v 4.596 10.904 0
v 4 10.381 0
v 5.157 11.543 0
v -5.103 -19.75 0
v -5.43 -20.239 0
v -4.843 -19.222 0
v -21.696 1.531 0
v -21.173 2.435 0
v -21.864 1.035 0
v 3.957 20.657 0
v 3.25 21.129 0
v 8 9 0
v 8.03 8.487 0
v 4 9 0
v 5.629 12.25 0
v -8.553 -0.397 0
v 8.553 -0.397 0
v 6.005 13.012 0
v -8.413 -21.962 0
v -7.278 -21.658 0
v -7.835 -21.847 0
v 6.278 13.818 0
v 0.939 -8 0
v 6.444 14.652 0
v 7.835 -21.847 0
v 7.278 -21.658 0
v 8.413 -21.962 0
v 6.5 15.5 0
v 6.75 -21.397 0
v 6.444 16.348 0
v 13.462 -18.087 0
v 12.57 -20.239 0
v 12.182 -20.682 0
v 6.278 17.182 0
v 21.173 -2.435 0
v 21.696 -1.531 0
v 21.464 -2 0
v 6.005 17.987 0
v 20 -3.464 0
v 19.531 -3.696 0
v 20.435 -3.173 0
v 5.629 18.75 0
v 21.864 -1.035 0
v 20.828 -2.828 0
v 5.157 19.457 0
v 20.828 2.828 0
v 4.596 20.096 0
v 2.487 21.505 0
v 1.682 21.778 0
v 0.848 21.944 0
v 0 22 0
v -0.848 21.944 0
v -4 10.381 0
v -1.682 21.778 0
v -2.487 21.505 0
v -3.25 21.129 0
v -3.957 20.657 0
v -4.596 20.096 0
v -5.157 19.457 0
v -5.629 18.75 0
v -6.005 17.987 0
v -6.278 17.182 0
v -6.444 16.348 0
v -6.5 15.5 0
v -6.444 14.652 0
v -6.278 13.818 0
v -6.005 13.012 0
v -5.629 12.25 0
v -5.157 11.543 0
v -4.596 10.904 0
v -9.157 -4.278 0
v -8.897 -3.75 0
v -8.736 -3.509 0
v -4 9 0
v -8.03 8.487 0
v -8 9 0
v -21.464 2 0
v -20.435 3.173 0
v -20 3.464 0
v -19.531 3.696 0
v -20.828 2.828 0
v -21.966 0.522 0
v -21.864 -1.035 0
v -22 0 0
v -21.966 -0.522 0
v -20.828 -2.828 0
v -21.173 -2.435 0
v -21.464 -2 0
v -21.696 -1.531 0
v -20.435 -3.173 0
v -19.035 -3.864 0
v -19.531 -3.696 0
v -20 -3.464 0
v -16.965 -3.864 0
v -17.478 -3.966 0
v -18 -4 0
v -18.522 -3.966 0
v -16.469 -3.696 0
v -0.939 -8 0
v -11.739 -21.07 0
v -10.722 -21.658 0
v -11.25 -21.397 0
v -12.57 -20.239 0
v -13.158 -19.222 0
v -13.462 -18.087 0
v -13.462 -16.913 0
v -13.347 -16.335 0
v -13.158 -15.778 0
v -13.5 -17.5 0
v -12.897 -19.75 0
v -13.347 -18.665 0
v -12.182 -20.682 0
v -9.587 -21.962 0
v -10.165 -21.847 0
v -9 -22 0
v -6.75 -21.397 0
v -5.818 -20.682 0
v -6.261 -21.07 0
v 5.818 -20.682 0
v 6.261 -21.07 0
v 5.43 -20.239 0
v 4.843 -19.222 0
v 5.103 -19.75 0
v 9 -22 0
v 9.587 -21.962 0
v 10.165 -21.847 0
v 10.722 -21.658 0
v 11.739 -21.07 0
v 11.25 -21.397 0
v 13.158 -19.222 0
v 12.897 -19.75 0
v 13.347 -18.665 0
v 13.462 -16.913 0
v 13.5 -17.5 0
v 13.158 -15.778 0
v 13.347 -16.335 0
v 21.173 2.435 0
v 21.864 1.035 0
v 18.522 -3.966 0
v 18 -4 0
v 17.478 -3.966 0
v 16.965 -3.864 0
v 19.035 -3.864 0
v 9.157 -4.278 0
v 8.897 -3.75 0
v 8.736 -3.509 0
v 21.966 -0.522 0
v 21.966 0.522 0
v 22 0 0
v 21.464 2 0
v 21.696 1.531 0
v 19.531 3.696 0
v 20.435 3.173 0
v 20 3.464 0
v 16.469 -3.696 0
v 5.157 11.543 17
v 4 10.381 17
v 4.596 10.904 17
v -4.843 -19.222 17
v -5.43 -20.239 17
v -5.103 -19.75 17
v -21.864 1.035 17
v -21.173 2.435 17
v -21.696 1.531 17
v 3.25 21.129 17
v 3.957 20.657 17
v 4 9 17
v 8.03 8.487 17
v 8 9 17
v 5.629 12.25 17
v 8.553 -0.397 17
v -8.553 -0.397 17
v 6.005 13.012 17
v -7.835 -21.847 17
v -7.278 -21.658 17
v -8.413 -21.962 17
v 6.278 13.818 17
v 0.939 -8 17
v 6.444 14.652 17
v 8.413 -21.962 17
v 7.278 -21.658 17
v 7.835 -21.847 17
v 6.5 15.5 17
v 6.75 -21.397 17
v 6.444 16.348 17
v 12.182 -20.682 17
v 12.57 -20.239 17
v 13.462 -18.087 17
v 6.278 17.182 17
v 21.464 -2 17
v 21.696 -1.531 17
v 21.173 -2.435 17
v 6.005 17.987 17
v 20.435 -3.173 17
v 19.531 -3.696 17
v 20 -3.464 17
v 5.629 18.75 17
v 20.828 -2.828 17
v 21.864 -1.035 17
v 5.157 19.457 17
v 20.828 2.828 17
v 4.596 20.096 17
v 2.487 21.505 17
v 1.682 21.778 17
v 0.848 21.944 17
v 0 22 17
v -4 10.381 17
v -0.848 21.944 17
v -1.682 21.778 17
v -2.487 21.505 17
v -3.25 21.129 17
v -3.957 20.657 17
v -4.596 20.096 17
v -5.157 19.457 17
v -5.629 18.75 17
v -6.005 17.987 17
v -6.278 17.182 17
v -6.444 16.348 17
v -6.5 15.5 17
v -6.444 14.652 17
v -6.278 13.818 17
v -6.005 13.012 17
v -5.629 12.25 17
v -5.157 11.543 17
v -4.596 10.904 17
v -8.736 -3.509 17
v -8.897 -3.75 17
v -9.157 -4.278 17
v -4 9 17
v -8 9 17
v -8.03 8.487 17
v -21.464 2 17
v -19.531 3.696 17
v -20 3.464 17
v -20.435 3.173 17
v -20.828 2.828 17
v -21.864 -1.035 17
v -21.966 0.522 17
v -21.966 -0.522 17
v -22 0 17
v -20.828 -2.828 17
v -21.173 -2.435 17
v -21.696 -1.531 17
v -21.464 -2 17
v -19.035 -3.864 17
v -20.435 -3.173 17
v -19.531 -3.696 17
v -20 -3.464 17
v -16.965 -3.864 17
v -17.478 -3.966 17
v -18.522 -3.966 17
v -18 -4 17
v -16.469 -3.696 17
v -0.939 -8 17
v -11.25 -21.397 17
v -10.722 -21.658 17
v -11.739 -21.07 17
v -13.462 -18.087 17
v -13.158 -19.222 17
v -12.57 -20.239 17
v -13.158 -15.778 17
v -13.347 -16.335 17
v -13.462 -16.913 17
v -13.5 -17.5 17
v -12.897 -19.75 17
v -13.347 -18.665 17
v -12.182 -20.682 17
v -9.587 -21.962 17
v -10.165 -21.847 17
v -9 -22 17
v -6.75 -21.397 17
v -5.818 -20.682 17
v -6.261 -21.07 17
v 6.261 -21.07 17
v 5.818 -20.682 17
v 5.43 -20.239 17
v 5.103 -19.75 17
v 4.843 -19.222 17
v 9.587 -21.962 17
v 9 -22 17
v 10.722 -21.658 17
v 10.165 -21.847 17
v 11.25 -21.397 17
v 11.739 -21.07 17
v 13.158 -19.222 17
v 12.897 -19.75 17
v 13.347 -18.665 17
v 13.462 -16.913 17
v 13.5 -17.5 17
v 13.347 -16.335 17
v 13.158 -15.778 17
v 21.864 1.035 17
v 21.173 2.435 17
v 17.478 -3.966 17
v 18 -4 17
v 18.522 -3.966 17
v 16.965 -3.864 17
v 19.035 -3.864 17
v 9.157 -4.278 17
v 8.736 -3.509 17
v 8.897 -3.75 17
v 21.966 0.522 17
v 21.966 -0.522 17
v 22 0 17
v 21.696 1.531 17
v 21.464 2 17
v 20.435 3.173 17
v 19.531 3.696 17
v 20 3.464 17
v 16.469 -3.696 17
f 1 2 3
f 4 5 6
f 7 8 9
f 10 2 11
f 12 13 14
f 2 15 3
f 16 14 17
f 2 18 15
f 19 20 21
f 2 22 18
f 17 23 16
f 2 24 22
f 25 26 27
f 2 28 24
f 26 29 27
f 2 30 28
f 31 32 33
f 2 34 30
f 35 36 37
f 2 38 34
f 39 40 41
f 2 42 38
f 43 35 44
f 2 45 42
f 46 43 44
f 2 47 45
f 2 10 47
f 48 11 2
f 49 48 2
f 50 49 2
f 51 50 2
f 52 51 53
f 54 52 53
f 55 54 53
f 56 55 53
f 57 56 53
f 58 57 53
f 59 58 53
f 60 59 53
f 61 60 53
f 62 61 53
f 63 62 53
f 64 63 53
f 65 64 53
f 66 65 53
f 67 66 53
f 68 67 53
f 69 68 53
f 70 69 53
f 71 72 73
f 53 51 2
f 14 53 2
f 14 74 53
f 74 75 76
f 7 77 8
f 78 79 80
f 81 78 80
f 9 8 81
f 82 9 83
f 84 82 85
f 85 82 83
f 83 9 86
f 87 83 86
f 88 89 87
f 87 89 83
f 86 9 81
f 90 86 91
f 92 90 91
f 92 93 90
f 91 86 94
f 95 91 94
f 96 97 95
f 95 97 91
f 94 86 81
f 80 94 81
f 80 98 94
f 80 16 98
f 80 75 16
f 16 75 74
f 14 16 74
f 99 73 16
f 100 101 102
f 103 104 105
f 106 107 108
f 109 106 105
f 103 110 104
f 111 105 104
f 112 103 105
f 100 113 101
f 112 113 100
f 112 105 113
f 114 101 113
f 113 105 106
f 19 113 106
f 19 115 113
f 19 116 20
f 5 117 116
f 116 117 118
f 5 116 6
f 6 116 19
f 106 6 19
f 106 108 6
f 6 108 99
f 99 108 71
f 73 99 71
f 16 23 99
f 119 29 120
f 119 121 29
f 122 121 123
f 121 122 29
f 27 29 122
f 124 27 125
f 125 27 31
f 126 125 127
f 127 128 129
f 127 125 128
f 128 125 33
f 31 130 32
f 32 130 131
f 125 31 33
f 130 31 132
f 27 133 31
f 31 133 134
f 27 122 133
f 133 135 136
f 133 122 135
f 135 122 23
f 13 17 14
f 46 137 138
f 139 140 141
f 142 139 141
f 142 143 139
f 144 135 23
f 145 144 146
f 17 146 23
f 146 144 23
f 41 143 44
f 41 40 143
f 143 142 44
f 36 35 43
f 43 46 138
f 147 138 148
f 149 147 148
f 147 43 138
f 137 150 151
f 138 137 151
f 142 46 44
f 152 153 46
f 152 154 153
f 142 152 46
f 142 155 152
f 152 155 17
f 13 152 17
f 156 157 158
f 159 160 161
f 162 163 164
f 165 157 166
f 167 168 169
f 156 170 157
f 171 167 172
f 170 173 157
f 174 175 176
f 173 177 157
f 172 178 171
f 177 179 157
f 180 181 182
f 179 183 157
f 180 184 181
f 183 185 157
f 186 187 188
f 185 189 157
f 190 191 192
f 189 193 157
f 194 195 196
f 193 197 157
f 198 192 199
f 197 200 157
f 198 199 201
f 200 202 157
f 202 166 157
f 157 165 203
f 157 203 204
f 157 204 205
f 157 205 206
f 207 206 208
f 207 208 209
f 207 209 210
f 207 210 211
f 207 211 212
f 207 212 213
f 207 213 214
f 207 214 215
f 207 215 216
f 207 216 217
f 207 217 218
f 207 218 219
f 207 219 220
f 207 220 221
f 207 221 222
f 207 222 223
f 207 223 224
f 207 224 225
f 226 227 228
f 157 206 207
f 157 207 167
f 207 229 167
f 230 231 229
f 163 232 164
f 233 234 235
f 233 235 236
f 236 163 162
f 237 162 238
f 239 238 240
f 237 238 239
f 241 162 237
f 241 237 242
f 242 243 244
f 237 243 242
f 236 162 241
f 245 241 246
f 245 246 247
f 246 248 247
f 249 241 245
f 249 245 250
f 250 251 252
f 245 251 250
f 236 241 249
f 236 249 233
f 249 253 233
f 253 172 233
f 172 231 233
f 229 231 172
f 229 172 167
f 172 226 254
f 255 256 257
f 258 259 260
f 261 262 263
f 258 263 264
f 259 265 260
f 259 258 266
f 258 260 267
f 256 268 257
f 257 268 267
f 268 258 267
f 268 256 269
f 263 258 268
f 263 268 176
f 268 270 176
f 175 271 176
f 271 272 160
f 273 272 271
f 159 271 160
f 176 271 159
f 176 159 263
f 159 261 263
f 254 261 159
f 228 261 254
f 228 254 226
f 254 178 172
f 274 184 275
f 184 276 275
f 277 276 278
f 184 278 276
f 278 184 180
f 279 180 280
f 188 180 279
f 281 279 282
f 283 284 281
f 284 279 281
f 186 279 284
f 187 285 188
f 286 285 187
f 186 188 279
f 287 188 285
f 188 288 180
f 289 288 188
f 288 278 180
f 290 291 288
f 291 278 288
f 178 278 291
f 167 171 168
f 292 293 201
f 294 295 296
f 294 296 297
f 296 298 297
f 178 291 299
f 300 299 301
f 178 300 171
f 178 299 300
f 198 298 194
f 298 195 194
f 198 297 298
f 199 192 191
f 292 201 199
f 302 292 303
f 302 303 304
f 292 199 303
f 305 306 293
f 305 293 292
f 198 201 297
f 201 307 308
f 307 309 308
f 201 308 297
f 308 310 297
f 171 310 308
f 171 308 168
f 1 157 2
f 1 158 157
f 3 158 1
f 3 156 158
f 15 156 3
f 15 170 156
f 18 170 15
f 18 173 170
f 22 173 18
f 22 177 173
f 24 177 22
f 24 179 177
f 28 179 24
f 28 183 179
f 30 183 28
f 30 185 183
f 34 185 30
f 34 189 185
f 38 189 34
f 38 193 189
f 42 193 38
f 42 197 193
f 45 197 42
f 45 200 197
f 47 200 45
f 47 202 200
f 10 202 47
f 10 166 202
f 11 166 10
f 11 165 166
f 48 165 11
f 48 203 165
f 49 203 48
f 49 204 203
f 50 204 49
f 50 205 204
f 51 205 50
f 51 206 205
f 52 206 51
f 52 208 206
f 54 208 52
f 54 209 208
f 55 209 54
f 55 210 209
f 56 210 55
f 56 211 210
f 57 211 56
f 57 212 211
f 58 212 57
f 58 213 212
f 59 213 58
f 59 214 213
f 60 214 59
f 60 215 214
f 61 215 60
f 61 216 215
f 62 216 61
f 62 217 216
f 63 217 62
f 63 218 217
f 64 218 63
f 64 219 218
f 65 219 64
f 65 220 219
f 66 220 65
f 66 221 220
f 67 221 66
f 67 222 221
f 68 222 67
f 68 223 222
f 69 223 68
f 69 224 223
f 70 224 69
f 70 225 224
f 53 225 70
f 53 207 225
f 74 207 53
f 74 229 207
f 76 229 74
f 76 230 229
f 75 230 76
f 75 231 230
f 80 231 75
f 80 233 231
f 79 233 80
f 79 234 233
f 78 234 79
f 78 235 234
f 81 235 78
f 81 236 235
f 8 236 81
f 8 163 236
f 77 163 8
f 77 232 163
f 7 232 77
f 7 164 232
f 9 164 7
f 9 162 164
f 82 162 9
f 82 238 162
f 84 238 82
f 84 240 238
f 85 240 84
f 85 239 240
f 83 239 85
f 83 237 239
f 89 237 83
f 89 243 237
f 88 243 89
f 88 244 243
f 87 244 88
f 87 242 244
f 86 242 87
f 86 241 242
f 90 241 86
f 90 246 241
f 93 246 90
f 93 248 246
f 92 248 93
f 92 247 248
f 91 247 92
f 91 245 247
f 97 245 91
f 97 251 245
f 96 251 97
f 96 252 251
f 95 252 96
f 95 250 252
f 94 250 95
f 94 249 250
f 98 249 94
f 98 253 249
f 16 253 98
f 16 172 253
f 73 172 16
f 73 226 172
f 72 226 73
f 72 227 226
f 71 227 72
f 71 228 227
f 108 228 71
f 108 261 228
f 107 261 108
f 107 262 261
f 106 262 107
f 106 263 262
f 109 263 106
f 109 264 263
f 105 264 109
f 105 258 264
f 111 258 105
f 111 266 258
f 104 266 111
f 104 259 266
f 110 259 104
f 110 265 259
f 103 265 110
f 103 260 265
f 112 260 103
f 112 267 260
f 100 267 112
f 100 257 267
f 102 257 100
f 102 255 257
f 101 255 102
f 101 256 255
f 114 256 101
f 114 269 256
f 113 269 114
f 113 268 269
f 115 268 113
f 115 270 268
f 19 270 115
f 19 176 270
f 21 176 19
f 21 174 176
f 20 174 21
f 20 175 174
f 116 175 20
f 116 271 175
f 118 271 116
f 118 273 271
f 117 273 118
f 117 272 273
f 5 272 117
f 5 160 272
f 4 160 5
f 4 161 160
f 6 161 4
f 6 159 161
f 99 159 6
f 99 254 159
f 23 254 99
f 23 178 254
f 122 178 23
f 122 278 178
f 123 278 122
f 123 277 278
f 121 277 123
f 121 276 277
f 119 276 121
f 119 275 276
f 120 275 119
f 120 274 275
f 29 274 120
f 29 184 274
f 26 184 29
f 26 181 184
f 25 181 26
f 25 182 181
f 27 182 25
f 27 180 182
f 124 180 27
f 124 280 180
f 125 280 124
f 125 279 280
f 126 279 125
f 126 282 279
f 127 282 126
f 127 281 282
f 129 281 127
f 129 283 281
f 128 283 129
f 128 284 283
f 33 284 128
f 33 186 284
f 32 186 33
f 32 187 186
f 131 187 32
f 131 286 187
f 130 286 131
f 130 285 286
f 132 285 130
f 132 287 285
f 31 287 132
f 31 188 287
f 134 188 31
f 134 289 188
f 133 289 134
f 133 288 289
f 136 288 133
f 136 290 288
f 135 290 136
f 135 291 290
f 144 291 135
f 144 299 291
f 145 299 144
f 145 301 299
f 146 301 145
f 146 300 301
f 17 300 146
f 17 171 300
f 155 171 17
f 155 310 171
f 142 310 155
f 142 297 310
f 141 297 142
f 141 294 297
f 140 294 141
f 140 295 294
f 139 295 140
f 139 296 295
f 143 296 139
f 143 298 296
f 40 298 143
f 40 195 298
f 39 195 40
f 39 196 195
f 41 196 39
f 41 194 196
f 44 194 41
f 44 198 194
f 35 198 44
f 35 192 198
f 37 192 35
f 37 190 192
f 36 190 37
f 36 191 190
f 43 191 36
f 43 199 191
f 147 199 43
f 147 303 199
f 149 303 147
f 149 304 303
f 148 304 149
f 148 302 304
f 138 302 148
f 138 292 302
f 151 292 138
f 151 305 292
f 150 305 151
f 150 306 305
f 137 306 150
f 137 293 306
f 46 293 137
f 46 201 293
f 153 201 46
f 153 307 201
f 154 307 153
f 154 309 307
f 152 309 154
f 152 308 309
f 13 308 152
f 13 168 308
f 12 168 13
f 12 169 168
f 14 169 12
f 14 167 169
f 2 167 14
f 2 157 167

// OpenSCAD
// Tagless person: 45 x 45 x 17 mm limit; one chunky silhouette.
$fn=48;
linear_extrude(17) union() {
  // All roots overlap in area; no detached limbs or central square pad.
  translate([0,15.5]) circle(r=6.5);
  translate([-4,7]) square([8,9]);
  polygon([[-8,9],[8,9],[9,-8],[-9,-8]]);
  for(s=[-1,1]) hull() {
    translate([s*6,5]) circle(r=4);
    translate([s*18,0]) circle(r=4);
  }
  for(s=[-1,1]) hull() {
    translate([s*5,-6]) circle(r=4.5);
    translate([s*9,-17.5]) circle(r=4.5);
  }
}
